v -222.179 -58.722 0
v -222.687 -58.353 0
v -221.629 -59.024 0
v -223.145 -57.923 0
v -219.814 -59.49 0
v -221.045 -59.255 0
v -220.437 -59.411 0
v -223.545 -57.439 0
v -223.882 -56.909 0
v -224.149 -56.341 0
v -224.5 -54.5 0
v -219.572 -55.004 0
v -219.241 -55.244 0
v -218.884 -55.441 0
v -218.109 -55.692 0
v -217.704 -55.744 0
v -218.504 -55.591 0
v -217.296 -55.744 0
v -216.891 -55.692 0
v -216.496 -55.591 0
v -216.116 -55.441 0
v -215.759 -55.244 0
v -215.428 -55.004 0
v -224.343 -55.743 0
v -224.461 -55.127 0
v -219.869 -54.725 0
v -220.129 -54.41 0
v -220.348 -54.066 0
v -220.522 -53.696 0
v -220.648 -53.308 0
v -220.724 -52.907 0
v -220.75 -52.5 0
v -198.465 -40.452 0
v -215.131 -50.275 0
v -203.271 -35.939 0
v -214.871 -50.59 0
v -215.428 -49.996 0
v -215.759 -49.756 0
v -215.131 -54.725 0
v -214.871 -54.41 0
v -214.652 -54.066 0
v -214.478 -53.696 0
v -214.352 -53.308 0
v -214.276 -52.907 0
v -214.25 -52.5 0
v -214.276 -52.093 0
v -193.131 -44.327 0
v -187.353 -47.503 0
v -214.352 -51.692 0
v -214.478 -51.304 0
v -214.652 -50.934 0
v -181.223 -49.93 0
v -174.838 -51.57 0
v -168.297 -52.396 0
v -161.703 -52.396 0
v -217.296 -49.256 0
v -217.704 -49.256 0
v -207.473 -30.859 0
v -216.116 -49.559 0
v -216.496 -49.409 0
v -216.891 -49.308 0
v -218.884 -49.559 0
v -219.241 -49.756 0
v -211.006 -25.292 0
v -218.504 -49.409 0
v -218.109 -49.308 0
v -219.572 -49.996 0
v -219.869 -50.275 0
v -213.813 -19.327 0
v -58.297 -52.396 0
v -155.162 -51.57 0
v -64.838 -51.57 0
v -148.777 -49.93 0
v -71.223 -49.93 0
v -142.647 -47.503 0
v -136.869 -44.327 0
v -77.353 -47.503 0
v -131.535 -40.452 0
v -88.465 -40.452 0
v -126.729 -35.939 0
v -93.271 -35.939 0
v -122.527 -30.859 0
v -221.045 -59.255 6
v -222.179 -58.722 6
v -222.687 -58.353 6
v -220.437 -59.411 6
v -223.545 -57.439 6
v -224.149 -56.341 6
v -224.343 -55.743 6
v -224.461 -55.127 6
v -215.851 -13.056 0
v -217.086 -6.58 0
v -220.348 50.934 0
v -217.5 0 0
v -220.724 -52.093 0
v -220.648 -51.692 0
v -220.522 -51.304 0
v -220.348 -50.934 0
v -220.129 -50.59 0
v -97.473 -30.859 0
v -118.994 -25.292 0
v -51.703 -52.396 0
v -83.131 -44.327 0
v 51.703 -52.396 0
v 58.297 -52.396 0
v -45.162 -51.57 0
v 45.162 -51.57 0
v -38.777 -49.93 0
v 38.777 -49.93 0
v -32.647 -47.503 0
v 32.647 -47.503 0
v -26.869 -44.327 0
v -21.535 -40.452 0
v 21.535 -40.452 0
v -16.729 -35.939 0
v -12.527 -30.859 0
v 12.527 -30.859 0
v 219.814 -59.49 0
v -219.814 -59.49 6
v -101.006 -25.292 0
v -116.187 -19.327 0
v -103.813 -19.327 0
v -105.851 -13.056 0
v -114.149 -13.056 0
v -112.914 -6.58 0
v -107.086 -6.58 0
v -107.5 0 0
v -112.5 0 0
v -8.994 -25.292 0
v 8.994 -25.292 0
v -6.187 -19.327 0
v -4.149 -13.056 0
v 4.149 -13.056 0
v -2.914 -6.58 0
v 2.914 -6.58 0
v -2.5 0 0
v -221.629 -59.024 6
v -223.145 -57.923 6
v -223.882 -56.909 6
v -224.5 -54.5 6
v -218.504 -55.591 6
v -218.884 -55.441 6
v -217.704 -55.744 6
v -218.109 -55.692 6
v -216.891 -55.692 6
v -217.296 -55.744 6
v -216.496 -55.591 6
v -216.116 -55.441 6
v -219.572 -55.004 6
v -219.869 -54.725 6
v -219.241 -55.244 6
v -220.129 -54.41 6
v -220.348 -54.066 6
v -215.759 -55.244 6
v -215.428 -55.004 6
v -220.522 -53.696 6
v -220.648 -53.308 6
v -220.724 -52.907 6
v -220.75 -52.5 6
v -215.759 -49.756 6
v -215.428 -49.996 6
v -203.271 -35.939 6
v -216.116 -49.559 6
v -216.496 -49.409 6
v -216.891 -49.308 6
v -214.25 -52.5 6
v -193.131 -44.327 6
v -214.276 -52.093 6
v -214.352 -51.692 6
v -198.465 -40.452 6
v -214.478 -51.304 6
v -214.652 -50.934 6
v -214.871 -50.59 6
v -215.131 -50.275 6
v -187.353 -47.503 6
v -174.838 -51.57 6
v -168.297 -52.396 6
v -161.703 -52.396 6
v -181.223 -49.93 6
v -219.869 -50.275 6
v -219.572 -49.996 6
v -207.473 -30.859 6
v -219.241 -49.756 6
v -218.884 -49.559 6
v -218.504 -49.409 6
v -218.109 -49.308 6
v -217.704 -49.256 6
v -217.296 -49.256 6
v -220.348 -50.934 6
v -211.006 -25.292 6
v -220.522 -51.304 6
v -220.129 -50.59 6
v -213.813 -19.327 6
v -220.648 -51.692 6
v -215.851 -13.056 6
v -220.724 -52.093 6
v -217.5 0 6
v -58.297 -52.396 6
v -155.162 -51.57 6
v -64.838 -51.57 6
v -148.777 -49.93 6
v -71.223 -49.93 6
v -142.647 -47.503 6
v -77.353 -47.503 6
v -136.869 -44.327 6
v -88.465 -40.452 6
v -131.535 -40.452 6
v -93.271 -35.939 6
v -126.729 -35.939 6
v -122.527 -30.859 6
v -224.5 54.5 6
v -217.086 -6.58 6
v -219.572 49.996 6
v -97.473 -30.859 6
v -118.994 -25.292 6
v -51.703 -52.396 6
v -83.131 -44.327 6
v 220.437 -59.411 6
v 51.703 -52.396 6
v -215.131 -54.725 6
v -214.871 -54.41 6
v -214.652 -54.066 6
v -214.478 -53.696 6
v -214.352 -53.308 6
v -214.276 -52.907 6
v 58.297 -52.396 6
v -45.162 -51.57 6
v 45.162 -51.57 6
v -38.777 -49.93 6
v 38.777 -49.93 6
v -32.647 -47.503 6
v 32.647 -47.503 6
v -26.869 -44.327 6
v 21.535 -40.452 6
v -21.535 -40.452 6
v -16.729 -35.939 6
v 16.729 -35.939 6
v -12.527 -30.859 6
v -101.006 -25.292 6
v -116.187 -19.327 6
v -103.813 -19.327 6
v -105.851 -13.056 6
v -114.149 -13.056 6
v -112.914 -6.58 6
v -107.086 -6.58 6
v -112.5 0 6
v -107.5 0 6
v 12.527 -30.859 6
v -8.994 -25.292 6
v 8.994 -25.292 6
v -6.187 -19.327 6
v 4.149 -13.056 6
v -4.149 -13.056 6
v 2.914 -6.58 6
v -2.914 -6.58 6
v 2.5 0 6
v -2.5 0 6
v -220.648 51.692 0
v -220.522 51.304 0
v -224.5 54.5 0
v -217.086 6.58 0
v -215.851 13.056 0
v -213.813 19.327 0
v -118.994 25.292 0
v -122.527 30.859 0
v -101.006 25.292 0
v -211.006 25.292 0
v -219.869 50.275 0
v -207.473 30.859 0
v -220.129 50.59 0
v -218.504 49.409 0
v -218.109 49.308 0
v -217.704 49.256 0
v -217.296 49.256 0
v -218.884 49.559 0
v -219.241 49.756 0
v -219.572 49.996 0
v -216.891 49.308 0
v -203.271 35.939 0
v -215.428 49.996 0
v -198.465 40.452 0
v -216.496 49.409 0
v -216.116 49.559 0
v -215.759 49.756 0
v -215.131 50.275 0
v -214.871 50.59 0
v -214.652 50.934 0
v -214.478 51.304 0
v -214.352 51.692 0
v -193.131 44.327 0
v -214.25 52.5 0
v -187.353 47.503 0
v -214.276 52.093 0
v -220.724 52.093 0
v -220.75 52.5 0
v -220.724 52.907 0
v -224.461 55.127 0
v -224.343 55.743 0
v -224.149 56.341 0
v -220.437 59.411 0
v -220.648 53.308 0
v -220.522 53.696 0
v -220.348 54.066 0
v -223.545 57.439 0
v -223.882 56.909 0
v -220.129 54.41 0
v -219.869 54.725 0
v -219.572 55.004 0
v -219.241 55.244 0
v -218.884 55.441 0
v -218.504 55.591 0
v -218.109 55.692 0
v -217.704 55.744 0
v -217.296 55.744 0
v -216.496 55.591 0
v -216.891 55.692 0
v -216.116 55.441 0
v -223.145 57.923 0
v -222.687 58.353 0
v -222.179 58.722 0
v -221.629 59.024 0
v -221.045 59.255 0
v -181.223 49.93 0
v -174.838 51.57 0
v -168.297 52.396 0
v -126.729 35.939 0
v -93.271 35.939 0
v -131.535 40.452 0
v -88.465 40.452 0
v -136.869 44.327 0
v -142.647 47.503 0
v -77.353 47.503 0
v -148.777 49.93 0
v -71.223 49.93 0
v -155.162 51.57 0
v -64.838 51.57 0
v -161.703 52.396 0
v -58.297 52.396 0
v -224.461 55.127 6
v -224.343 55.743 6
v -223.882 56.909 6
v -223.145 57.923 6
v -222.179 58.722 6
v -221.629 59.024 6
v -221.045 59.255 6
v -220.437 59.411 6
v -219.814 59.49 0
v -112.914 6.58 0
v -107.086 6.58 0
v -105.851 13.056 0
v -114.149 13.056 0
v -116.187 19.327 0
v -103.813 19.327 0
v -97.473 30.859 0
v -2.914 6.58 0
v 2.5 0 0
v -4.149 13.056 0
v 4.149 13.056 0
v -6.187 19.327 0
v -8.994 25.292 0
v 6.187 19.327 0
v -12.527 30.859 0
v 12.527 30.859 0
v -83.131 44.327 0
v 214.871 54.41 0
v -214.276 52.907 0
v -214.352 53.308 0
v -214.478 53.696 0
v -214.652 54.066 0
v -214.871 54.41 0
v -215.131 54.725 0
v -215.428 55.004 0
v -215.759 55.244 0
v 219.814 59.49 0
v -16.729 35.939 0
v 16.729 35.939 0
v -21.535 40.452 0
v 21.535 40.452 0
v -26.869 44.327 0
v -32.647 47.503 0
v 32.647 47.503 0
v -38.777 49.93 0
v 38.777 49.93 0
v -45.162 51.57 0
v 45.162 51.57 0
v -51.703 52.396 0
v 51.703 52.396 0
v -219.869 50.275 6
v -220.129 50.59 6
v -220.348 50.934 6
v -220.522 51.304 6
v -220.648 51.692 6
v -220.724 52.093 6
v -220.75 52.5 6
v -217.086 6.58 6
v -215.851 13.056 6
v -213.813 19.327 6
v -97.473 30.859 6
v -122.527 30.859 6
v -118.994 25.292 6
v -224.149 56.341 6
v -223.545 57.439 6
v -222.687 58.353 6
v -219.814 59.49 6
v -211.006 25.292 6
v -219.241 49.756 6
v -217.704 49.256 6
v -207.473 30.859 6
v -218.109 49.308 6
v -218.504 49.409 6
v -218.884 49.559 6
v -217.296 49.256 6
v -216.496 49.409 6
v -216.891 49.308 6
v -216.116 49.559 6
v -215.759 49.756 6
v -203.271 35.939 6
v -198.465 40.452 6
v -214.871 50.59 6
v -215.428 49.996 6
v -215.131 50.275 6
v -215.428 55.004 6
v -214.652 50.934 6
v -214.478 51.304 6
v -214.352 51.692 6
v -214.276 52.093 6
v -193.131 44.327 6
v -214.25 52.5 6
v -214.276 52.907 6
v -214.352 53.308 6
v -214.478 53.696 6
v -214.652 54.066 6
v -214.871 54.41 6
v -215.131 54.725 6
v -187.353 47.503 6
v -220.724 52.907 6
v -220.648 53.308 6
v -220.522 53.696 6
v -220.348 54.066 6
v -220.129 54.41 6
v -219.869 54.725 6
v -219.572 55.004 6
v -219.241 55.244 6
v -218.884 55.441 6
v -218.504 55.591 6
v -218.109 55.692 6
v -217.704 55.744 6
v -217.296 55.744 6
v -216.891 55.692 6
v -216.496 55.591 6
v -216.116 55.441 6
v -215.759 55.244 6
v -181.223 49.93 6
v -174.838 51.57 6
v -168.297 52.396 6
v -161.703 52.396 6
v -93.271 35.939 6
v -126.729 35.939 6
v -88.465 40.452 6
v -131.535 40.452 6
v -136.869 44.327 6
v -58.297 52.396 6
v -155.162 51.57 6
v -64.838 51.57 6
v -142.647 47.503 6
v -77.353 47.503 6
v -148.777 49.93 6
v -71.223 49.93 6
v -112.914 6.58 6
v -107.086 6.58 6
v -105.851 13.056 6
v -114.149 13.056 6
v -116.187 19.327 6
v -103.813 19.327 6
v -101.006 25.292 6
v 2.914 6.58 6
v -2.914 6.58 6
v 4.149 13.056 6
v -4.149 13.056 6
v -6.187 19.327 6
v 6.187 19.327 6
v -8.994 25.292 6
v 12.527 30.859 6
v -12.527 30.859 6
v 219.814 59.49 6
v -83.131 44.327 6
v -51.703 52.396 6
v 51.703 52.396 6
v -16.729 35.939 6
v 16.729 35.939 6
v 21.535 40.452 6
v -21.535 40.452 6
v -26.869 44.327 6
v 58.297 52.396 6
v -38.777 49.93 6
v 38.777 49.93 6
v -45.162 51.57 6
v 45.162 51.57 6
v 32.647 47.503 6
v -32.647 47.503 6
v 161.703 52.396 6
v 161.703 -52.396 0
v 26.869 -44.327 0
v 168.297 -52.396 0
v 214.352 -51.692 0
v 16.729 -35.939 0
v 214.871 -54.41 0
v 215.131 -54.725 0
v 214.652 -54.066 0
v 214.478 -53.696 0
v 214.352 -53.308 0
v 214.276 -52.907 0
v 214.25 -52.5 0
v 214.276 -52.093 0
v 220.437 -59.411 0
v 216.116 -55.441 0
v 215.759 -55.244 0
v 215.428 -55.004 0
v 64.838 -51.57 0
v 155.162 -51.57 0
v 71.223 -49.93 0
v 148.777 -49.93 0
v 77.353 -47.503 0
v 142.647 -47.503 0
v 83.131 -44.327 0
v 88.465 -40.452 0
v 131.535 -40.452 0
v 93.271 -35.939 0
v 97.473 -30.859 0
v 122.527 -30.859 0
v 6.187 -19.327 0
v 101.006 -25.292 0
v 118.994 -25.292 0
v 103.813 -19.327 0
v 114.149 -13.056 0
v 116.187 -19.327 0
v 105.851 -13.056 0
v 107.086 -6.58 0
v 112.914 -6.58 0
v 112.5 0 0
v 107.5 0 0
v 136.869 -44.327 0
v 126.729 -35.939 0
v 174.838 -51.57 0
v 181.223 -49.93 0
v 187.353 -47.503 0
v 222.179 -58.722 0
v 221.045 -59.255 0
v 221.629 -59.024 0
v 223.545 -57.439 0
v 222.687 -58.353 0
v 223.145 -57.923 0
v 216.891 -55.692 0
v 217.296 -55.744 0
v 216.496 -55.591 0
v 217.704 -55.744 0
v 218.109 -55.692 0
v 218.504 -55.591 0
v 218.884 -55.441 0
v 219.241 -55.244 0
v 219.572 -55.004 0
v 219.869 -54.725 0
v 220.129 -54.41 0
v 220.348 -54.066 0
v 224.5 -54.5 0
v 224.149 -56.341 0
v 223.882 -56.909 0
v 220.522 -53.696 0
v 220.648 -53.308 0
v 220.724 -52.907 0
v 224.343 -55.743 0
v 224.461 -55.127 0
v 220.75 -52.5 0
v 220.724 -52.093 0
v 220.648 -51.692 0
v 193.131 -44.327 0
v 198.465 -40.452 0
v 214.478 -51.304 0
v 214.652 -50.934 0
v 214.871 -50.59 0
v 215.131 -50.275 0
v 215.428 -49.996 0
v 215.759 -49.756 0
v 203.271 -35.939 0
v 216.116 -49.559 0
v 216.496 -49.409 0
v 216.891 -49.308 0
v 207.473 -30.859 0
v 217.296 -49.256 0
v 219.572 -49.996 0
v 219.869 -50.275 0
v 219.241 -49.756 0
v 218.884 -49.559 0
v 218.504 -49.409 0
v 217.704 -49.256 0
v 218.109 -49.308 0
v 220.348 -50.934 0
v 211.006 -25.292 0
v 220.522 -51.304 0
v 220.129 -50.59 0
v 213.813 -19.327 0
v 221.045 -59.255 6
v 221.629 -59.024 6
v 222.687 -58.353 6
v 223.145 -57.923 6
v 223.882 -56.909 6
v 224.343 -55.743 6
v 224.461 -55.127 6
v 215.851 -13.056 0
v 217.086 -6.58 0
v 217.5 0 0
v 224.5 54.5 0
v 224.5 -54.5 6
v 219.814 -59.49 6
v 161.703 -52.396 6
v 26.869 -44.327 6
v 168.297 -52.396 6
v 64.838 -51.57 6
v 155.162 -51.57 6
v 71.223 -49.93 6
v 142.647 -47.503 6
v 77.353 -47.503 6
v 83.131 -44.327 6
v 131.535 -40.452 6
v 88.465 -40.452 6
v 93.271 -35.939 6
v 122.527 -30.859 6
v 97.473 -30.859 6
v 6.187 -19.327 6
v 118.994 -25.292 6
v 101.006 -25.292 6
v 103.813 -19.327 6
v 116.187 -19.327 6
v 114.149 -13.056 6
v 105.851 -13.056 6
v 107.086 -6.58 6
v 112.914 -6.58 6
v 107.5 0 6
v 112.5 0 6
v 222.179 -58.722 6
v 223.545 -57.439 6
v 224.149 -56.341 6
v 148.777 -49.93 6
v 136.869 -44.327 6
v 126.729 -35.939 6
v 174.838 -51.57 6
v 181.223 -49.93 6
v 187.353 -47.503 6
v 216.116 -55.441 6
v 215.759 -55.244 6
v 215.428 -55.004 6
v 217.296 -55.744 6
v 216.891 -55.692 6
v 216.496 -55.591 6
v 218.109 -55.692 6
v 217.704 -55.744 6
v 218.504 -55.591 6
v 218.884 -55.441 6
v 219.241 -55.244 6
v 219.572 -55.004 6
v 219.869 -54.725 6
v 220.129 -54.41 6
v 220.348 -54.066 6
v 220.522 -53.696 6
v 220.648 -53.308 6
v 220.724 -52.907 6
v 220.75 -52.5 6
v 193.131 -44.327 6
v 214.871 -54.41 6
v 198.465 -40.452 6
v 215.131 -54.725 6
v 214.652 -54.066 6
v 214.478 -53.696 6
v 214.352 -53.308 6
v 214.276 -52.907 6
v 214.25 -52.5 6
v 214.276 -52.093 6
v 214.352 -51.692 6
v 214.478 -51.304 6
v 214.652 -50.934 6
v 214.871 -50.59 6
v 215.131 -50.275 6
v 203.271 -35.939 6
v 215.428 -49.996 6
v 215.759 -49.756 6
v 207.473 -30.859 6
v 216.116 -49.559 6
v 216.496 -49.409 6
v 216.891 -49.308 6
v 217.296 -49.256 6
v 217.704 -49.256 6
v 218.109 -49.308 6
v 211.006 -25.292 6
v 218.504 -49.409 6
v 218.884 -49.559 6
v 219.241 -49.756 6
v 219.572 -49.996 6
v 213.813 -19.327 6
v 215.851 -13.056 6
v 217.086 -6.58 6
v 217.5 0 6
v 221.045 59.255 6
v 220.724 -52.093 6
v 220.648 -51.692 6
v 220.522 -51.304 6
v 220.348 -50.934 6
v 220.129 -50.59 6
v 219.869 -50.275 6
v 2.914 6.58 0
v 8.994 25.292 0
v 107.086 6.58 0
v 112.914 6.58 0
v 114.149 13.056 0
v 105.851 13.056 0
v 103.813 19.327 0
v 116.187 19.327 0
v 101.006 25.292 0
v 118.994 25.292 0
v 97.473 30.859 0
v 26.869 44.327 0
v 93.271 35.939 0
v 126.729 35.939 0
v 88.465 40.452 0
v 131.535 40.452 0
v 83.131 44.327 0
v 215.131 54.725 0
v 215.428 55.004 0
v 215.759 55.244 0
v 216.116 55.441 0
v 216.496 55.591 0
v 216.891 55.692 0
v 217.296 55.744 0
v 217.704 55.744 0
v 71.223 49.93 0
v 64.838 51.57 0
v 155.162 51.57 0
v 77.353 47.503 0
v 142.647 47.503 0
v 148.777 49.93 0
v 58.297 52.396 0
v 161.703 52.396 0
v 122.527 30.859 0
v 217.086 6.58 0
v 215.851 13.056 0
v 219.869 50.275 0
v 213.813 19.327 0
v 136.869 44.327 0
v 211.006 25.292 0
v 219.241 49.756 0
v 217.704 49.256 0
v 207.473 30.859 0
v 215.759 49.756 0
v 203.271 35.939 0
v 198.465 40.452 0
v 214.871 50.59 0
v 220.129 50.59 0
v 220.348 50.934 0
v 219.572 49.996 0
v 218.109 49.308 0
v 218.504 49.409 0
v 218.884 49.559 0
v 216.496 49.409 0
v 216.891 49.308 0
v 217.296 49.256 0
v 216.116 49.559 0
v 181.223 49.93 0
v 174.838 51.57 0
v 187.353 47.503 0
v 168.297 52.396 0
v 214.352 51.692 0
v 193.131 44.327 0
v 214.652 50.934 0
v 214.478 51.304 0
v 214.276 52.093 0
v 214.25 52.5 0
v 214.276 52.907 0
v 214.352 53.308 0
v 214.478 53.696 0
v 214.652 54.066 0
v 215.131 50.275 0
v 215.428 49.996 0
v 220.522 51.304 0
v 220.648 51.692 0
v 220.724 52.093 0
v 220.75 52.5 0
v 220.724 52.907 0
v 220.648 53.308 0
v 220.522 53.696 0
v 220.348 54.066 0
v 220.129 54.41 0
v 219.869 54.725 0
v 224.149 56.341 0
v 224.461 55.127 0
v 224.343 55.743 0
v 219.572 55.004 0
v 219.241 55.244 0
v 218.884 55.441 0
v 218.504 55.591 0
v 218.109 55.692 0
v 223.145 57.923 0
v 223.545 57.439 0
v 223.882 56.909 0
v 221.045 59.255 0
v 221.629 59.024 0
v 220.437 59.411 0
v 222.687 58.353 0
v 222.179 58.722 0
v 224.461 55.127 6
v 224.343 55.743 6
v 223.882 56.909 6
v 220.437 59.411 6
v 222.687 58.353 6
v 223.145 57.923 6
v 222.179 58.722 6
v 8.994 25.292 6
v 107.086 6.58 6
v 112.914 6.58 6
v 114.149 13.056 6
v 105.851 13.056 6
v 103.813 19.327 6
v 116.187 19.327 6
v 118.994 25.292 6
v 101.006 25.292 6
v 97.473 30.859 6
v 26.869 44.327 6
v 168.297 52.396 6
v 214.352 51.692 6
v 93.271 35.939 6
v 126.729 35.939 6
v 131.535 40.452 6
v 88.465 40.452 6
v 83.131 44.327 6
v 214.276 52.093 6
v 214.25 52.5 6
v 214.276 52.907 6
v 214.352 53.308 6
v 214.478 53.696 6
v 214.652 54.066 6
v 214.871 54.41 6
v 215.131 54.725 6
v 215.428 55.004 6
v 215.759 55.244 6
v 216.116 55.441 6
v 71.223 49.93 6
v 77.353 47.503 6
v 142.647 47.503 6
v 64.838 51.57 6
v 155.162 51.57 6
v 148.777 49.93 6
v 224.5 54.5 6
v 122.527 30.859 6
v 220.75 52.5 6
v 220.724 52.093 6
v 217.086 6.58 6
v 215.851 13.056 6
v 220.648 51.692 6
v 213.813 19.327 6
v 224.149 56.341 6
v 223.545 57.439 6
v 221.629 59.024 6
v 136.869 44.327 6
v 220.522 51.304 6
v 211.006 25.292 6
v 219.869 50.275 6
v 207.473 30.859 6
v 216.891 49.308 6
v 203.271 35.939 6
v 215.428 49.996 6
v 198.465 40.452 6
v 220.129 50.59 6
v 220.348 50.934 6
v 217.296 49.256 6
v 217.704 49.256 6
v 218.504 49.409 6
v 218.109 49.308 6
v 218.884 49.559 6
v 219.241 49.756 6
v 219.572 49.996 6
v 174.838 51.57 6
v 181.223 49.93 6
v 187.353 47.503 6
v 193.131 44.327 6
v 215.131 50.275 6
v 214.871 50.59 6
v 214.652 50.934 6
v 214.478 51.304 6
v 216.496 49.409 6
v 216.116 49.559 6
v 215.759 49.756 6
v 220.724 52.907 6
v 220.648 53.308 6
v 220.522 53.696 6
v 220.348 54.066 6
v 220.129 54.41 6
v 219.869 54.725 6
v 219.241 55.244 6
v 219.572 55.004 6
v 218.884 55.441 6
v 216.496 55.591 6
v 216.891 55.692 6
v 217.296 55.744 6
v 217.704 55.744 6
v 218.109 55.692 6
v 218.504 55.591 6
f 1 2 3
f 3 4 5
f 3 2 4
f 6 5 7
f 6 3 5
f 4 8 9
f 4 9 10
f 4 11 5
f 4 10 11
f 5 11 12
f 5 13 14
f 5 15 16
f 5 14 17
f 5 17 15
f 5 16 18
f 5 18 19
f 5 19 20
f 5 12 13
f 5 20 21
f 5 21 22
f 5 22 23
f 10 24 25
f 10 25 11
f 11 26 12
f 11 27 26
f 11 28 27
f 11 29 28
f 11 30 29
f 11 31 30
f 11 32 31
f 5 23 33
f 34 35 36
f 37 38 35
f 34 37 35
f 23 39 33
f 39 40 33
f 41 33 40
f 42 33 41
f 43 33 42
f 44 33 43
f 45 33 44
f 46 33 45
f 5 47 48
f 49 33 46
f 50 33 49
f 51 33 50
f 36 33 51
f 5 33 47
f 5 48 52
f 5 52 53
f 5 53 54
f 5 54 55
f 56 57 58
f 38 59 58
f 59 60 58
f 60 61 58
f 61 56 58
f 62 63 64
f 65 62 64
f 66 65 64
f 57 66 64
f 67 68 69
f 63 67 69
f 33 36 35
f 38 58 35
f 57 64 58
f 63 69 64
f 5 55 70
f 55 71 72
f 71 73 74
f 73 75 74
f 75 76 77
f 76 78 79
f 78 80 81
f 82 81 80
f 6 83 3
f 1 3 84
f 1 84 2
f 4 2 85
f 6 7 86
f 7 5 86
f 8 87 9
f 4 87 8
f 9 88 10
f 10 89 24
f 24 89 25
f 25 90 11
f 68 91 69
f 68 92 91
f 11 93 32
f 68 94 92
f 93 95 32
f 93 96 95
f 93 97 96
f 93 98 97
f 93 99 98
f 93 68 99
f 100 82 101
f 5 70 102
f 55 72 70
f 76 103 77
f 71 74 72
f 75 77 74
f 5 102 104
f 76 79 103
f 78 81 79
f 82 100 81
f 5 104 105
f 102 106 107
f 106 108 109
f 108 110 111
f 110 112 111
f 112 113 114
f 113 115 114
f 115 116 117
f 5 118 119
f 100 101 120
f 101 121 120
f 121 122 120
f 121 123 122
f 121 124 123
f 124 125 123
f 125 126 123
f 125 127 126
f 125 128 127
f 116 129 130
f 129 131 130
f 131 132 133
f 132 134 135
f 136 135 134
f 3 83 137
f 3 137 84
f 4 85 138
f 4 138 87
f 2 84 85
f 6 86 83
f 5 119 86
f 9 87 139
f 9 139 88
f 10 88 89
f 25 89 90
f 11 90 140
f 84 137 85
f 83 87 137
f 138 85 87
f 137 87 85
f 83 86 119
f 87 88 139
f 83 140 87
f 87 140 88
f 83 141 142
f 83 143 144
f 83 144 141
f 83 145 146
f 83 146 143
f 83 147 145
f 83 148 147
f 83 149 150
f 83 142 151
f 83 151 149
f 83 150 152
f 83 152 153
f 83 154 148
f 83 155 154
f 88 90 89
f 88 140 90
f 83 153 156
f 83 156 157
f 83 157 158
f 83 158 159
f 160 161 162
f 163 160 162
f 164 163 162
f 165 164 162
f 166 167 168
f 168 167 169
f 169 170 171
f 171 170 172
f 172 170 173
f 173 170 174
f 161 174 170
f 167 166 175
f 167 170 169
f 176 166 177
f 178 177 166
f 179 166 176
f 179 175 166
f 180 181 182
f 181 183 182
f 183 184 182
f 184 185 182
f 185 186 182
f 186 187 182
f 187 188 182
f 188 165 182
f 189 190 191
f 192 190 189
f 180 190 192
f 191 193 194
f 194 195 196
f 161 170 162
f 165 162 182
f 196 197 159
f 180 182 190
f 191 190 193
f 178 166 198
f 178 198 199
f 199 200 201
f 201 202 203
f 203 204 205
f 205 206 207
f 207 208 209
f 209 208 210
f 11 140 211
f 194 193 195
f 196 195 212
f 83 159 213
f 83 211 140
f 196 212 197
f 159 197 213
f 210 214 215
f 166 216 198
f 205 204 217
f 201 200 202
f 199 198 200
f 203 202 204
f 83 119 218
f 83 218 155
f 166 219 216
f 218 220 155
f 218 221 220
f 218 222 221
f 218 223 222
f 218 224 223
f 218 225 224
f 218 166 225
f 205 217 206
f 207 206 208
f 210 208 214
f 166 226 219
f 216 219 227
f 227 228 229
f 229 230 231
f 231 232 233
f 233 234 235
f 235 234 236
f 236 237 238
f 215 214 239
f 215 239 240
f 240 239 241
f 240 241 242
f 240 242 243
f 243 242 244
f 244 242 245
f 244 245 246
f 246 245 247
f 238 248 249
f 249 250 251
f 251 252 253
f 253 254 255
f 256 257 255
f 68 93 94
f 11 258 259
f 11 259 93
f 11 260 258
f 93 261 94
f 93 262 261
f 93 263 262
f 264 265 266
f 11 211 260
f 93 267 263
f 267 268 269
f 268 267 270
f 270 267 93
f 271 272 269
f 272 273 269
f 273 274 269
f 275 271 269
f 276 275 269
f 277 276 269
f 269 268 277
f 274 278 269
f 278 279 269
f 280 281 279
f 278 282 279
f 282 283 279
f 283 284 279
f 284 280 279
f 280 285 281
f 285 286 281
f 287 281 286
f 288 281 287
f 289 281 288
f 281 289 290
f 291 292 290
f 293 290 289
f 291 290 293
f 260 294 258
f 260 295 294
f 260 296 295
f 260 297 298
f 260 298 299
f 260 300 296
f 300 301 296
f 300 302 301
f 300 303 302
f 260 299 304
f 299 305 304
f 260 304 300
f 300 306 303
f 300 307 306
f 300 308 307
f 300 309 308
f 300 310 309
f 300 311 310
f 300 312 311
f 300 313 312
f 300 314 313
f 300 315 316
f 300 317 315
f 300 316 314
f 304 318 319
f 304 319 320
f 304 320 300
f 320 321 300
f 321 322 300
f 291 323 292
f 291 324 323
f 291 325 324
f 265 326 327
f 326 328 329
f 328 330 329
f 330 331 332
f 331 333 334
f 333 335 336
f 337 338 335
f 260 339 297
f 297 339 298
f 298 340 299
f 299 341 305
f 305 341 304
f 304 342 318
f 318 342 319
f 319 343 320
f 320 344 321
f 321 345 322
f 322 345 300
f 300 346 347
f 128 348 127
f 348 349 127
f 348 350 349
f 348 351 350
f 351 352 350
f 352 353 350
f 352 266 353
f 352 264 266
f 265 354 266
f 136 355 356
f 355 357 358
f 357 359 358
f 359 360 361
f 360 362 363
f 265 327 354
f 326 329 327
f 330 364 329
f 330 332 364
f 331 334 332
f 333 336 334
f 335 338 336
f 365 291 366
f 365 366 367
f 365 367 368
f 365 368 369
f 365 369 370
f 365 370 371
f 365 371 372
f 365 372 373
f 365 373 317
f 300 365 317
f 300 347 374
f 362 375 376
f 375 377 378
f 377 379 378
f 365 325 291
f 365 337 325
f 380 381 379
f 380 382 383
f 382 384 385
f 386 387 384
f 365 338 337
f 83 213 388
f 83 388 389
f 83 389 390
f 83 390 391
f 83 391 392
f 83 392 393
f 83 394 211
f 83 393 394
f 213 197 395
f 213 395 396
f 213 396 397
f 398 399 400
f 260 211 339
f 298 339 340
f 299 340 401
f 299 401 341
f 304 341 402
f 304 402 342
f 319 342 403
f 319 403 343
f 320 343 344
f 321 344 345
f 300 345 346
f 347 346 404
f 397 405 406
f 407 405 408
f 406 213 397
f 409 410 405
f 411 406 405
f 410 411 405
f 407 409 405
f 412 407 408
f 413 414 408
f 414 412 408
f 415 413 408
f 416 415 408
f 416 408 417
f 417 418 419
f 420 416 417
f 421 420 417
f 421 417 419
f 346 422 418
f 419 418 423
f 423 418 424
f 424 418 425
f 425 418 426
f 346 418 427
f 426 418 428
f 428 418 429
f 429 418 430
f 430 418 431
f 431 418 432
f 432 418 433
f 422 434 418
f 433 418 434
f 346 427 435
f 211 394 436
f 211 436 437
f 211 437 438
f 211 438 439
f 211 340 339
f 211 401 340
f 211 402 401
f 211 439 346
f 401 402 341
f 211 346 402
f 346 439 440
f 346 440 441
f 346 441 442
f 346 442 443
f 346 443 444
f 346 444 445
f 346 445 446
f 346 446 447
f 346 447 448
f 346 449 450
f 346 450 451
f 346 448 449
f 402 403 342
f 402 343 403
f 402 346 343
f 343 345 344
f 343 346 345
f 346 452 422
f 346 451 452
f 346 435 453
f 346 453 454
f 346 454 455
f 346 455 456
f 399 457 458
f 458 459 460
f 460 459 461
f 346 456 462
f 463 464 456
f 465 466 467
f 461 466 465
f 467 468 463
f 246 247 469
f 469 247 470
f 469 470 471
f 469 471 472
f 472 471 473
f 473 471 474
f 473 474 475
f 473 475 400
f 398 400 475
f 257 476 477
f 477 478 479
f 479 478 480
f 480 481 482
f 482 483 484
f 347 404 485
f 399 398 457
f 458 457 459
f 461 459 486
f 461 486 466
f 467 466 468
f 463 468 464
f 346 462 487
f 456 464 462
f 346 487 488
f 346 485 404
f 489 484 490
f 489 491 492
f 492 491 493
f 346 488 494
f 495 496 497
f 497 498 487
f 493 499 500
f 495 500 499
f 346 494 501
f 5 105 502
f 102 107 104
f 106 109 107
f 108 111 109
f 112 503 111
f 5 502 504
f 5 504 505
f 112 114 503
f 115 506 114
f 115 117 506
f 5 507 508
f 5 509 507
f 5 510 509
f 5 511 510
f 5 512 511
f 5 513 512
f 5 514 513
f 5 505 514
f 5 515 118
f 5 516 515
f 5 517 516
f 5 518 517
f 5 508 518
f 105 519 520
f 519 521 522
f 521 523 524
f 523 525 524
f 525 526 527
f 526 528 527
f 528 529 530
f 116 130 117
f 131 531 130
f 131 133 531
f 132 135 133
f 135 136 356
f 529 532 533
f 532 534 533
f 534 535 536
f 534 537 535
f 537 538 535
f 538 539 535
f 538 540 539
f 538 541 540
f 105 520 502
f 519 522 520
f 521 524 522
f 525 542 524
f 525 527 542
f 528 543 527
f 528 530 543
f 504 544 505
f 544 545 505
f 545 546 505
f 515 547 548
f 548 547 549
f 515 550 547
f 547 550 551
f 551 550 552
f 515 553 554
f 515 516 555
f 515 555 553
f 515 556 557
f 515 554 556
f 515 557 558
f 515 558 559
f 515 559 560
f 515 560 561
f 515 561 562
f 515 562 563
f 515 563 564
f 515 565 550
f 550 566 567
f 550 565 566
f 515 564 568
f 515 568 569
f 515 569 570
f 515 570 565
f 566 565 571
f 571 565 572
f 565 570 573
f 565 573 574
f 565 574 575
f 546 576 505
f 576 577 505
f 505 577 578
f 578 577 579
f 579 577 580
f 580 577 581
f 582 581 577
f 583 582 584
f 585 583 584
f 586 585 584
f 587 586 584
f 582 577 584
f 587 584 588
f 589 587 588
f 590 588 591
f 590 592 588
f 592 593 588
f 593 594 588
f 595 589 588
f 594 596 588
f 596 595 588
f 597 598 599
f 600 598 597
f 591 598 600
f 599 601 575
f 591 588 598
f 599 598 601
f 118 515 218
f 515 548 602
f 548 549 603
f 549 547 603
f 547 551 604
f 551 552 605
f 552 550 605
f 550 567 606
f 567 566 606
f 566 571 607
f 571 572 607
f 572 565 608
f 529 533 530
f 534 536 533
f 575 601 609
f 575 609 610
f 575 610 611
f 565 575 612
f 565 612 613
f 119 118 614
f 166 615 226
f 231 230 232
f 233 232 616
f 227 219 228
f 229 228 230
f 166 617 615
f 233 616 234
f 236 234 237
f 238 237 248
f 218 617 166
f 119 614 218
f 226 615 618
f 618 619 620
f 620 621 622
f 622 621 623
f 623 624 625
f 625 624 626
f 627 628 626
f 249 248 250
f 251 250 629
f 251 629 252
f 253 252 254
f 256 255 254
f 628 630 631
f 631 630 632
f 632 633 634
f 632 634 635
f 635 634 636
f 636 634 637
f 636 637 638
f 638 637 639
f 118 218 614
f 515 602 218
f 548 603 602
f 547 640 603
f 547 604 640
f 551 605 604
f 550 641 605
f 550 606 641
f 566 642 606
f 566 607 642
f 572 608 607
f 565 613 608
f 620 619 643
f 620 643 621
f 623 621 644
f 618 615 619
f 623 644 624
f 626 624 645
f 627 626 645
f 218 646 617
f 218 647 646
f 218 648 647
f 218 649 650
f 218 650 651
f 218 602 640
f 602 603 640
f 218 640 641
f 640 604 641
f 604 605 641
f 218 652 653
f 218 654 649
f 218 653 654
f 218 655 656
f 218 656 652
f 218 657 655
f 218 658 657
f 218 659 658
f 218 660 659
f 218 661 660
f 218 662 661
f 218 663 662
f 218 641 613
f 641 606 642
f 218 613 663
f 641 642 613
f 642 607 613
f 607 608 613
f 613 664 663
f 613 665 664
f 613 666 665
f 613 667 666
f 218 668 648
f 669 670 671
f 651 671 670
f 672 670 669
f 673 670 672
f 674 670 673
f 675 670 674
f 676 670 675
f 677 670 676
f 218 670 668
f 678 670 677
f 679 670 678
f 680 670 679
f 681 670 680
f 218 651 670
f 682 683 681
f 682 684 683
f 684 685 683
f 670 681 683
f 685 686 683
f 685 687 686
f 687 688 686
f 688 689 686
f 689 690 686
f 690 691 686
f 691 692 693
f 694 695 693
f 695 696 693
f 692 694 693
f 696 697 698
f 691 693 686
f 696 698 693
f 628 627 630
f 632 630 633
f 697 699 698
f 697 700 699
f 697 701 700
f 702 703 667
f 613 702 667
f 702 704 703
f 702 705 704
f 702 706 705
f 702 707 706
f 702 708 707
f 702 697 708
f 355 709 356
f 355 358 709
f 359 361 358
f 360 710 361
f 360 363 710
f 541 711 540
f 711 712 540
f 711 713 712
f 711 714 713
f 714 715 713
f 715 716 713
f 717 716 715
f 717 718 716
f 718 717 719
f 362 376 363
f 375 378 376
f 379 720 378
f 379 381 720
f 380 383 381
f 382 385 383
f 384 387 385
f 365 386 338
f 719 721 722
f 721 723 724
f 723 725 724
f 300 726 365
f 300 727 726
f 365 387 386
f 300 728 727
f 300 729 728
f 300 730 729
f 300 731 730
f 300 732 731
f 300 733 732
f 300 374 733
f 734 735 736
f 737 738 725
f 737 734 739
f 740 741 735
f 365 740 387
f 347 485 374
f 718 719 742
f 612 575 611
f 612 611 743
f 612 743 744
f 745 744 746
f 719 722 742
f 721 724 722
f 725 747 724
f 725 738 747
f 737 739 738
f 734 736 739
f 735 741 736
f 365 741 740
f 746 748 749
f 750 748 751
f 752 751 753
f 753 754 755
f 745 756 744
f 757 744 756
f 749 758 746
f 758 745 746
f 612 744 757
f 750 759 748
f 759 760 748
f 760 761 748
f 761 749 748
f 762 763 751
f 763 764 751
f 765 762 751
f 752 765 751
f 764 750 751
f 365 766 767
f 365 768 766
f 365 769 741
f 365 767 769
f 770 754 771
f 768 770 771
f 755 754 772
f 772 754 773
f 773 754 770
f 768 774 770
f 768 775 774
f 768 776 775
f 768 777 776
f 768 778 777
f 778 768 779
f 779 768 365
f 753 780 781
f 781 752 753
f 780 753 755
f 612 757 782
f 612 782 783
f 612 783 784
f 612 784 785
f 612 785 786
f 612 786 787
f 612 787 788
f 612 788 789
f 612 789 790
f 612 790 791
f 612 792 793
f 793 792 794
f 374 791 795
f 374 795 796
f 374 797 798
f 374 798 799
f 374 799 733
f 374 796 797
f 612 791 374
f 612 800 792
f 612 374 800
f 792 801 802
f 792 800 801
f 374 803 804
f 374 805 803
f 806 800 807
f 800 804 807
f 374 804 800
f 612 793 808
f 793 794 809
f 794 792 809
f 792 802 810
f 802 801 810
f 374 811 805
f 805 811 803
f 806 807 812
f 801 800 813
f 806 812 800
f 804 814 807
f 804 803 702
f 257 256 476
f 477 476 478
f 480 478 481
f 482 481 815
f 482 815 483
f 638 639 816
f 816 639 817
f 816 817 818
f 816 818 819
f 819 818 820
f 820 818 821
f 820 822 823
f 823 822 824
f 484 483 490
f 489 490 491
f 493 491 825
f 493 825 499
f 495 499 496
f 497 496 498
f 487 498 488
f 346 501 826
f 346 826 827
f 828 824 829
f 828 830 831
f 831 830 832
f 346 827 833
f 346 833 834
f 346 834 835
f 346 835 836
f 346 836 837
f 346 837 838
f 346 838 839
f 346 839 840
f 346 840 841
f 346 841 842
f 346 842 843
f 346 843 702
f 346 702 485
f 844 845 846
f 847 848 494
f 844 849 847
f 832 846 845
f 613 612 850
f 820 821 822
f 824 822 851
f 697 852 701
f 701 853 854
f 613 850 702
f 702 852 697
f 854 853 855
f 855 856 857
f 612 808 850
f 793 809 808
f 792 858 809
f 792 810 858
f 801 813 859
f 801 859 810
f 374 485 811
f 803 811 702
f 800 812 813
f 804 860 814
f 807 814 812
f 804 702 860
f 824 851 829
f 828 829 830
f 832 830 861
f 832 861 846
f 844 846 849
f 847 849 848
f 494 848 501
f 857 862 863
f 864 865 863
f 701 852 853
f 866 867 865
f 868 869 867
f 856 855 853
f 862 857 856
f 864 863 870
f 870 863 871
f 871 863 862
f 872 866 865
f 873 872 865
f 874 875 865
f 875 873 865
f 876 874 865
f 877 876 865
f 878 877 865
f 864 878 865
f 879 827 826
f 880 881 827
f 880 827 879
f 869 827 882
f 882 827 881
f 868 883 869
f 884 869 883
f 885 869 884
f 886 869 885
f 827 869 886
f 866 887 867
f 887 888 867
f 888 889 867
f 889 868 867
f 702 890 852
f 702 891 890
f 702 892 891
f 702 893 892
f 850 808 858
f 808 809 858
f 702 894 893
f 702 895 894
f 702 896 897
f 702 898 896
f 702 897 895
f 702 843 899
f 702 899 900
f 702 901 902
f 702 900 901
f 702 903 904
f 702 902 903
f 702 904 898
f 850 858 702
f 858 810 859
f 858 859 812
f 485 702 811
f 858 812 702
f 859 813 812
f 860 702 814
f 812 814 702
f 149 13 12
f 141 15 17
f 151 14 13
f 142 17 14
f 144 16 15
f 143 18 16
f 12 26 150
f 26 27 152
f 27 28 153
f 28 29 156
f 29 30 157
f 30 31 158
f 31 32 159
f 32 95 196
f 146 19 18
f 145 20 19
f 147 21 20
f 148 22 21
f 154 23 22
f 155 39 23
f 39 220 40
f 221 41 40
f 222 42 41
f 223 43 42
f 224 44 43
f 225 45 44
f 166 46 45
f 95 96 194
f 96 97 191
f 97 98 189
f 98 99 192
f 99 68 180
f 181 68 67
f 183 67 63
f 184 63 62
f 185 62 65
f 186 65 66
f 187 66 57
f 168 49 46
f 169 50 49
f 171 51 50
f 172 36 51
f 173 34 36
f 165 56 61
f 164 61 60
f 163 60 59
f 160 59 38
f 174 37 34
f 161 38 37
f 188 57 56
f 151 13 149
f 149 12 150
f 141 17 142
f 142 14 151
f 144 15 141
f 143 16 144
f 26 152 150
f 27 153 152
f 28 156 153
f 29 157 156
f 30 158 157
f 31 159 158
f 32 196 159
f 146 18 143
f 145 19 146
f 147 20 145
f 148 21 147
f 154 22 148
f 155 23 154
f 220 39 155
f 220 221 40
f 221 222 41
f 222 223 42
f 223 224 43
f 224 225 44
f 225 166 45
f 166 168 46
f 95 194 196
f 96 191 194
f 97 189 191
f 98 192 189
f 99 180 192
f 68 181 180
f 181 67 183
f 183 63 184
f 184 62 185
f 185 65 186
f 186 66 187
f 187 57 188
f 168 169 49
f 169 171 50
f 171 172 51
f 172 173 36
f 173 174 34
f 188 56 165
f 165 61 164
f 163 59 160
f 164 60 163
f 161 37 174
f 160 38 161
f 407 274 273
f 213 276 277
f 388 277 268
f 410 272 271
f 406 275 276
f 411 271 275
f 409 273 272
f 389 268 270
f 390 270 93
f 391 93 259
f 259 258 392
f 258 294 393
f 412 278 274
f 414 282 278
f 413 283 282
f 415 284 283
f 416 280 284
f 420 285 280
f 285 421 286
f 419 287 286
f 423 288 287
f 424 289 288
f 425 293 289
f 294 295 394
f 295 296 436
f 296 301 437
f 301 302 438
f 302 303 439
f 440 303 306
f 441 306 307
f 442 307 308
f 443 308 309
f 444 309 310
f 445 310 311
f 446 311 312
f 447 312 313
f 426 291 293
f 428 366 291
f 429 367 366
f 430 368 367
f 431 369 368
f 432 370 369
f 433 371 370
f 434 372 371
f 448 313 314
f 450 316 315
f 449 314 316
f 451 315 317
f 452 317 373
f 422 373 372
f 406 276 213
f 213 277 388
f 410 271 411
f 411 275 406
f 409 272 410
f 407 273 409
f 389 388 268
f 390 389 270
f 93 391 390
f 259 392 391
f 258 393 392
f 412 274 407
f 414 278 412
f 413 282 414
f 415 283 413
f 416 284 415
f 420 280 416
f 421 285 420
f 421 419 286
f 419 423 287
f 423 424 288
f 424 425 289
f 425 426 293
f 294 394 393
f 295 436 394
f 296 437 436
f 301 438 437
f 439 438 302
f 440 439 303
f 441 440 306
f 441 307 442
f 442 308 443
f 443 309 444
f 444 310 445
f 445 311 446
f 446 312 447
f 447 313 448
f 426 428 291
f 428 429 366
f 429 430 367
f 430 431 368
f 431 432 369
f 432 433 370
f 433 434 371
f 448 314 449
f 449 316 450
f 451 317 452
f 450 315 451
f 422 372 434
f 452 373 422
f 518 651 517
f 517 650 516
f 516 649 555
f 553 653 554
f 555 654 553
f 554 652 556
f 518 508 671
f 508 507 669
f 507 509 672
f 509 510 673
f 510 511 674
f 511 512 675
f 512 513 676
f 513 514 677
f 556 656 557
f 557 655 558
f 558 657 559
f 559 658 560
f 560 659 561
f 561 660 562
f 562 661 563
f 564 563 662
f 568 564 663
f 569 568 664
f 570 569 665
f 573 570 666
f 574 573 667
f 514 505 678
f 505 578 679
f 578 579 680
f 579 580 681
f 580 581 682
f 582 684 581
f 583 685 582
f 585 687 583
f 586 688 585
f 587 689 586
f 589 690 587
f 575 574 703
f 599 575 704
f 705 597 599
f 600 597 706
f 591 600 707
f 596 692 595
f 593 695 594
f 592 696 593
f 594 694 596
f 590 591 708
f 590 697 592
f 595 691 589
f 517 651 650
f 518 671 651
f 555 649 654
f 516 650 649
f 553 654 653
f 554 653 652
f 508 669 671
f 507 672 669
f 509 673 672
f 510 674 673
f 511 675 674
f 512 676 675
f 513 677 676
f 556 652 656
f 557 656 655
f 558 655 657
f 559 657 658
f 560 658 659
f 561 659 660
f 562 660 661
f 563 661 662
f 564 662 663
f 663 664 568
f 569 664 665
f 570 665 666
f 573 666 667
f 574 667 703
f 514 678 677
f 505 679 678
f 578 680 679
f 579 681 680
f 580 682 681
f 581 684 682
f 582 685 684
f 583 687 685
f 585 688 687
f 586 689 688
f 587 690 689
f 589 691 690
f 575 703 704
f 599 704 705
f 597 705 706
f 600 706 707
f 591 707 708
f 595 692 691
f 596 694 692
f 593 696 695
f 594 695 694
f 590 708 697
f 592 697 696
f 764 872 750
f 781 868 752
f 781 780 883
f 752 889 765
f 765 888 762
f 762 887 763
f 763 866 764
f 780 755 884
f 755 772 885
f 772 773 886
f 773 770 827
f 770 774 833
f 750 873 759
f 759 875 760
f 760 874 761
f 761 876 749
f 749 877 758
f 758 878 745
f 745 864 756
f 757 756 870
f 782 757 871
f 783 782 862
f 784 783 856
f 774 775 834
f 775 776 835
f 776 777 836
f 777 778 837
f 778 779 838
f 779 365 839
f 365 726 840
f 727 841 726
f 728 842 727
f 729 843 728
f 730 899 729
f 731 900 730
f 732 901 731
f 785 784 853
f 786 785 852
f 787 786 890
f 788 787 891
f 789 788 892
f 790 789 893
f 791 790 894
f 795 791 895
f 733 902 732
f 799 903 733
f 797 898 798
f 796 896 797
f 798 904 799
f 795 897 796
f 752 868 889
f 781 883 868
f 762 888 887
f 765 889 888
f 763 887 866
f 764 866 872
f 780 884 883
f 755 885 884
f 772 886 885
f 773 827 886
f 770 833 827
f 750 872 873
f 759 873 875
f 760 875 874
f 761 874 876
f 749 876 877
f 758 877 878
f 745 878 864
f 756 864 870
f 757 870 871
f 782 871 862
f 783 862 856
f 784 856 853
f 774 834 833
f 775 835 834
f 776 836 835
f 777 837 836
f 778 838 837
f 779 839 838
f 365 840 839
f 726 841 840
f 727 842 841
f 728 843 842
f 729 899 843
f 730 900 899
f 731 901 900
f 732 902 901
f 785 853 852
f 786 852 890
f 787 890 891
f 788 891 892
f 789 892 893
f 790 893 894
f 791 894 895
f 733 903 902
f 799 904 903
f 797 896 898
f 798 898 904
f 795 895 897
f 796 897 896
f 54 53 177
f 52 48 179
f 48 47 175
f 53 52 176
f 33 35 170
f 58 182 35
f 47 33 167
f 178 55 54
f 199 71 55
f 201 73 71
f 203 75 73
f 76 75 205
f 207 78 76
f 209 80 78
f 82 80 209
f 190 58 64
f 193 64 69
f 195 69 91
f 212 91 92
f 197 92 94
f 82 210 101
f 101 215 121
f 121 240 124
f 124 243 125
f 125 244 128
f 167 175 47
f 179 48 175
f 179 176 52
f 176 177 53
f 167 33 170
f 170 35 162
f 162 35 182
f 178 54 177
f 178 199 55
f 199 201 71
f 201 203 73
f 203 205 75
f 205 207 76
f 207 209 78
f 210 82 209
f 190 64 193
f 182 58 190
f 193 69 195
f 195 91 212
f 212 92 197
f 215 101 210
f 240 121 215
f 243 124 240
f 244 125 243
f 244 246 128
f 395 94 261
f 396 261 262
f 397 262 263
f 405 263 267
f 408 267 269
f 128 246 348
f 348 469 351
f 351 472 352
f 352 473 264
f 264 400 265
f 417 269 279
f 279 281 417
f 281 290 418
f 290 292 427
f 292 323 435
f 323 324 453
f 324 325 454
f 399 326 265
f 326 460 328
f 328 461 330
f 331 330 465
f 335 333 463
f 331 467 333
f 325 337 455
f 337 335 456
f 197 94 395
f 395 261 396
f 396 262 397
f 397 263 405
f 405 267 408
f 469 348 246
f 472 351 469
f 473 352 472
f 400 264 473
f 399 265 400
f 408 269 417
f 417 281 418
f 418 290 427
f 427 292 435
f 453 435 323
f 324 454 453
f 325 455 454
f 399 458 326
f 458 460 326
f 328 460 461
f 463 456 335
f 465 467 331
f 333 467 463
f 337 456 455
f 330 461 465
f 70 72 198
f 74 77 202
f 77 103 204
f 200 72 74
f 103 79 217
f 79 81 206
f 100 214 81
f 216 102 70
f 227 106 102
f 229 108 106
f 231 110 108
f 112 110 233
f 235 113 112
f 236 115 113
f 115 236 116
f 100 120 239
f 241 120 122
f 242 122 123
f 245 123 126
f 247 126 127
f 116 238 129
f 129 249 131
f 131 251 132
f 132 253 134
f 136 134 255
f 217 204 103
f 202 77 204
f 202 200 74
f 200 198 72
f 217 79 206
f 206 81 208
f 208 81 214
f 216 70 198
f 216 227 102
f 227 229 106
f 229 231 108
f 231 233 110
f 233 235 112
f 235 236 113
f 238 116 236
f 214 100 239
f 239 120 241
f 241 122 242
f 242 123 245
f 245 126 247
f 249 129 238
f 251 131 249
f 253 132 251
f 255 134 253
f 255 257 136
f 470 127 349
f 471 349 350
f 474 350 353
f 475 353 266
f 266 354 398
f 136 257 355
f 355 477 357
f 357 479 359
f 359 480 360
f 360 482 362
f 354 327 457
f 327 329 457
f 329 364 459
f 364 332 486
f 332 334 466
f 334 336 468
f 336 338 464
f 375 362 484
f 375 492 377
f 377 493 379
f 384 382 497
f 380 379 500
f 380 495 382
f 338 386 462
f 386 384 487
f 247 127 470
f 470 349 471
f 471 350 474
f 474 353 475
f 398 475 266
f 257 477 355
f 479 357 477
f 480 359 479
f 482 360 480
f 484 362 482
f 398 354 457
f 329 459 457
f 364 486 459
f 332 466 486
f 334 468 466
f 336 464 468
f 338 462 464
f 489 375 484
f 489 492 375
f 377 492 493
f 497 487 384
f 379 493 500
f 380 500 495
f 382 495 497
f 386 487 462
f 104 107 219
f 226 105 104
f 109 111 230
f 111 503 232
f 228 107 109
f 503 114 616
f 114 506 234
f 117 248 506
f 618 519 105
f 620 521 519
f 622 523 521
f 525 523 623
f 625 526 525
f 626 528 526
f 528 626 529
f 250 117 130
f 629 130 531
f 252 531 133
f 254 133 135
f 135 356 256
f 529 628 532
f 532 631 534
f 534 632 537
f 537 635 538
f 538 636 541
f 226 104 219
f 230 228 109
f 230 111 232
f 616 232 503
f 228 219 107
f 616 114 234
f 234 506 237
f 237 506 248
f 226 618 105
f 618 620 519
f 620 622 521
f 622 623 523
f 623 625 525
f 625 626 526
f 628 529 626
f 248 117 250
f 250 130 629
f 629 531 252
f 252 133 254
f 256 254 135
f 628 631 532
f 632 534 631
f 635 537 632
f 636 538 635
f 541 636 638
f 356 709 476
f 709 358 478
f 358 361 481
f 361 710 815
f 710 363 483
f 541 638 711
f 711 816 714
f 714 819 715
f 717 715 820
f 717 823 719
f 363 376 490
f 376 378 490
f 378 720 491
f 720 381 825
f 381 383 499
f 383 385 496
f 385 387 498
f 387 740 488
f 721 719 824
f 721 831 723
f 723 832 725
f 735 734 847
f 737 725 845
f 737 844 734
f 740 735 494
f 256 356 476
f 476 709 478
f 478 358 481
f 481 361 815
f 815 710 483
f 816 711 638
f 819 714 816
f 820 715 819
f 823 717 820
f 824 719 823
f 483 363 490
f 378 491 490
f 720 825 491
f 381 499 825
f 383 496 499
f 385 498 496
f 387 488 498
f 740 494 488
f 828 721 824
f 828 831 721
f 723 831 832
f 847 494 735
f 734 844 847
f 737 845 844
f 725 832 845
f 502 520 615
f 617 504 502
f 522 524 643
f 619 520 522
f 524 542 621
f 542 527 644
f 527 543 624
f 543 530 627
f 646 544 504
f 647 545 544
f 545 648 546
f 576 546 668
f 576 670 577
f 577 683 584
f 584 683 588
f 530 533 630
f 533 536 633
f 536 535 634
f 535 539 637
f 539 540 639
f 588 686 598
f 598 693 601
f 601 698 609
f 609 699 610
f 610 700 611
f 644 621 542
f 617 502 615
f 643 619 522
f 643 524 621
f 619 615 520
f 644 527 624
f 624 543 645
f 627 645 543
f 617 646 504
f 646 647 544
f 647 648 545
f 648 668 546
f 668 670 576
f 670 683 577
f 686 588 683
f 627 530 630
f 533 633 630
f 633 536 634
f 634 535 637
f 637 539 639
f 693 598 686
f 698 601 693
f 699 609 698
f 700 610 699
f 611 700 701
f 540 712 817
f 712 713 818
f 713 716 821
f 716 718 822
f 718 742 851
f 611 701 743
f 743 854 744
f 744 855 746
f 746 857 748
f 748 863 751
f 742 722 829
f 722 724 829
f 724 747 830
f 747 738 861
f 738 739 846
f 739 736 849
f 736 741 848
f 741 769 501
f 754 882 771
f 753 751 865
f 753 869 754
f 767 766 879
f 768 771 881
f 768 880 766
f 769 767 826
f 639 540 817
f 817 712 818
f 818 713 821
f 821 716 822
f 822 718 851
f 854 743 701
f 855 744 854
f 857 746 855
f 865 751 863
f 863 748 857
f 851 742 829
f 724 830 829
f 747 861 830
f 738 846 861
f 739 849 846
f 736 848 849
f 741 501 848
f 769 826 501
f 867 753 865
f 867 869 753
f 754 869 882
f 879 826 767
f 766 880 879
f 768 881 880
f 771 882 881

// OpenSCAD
$fn = 50;

difference() {
	union() {
		hull() {
			translate(v = [-219.5, 54.5, 0]) {
				cylinder(h = 6, r = 5);
			}
			translate(v = [219.5, 54.5, 0]) {
				cylinder(h = 6, r = 5);
			}
			translate(v = [-219.5, -54.5, 0]) {
				cylinder(h = 6, r = 5);
			}
			translate(v = [219.5, -54.5, 0]) {
				cylinder(h = 6, r = 5);
			}
		}
	}
	union() {
		translate(v = [-217.5, -52.5, -100.0]) {
			cylinder(h = 200, r = 3.25);
		}
		translate(v = [-217.5, 52.5, -100.0]) {
			cylinder(h = 200, r = 3.25);
		}
		translate(v = [217.5, -52.5, -100.0]) {
			cylinder(h = 200, r = 3.25);
		}
		translate(v = [217.5, 52.5, -100.0]) {
			cylinder(h = 200, r = 3.25);
		}
		translate(v = [-217.5, -52.5, -100.0]) {
			cylinder(h = 200, r = 1.8);
		}
		translate(v = [-217.5, 52.5, -100.0]) {
			cylinder(h = 200, r = 1.8);
		}
		translate(v = [217.5, -52.5, -100.0]) {
			cylinder(h = 200, r = 1.8);
		}
		translate(v = [217.5, 52.5, -100.0]) {
			cylinder(h = 200, r = 1.8);
		}
		translate(v = [-165.0, 0, 0.0]) {
			cylinder(h = 6, r = 52.5);
		}
		translate(v = [-55.0, 0, 0.0]) {
			cylinder(h = 6, r = 52.5);
		}
		translate(v = [55.0, 0, 0.0]) {
			cylinder(h = 6, r = 52.5);
		}
		translate(v = [165.0, 0, 0.0]) {
			cylinder(h = 6, r = 52.5);
		}
	}
}
